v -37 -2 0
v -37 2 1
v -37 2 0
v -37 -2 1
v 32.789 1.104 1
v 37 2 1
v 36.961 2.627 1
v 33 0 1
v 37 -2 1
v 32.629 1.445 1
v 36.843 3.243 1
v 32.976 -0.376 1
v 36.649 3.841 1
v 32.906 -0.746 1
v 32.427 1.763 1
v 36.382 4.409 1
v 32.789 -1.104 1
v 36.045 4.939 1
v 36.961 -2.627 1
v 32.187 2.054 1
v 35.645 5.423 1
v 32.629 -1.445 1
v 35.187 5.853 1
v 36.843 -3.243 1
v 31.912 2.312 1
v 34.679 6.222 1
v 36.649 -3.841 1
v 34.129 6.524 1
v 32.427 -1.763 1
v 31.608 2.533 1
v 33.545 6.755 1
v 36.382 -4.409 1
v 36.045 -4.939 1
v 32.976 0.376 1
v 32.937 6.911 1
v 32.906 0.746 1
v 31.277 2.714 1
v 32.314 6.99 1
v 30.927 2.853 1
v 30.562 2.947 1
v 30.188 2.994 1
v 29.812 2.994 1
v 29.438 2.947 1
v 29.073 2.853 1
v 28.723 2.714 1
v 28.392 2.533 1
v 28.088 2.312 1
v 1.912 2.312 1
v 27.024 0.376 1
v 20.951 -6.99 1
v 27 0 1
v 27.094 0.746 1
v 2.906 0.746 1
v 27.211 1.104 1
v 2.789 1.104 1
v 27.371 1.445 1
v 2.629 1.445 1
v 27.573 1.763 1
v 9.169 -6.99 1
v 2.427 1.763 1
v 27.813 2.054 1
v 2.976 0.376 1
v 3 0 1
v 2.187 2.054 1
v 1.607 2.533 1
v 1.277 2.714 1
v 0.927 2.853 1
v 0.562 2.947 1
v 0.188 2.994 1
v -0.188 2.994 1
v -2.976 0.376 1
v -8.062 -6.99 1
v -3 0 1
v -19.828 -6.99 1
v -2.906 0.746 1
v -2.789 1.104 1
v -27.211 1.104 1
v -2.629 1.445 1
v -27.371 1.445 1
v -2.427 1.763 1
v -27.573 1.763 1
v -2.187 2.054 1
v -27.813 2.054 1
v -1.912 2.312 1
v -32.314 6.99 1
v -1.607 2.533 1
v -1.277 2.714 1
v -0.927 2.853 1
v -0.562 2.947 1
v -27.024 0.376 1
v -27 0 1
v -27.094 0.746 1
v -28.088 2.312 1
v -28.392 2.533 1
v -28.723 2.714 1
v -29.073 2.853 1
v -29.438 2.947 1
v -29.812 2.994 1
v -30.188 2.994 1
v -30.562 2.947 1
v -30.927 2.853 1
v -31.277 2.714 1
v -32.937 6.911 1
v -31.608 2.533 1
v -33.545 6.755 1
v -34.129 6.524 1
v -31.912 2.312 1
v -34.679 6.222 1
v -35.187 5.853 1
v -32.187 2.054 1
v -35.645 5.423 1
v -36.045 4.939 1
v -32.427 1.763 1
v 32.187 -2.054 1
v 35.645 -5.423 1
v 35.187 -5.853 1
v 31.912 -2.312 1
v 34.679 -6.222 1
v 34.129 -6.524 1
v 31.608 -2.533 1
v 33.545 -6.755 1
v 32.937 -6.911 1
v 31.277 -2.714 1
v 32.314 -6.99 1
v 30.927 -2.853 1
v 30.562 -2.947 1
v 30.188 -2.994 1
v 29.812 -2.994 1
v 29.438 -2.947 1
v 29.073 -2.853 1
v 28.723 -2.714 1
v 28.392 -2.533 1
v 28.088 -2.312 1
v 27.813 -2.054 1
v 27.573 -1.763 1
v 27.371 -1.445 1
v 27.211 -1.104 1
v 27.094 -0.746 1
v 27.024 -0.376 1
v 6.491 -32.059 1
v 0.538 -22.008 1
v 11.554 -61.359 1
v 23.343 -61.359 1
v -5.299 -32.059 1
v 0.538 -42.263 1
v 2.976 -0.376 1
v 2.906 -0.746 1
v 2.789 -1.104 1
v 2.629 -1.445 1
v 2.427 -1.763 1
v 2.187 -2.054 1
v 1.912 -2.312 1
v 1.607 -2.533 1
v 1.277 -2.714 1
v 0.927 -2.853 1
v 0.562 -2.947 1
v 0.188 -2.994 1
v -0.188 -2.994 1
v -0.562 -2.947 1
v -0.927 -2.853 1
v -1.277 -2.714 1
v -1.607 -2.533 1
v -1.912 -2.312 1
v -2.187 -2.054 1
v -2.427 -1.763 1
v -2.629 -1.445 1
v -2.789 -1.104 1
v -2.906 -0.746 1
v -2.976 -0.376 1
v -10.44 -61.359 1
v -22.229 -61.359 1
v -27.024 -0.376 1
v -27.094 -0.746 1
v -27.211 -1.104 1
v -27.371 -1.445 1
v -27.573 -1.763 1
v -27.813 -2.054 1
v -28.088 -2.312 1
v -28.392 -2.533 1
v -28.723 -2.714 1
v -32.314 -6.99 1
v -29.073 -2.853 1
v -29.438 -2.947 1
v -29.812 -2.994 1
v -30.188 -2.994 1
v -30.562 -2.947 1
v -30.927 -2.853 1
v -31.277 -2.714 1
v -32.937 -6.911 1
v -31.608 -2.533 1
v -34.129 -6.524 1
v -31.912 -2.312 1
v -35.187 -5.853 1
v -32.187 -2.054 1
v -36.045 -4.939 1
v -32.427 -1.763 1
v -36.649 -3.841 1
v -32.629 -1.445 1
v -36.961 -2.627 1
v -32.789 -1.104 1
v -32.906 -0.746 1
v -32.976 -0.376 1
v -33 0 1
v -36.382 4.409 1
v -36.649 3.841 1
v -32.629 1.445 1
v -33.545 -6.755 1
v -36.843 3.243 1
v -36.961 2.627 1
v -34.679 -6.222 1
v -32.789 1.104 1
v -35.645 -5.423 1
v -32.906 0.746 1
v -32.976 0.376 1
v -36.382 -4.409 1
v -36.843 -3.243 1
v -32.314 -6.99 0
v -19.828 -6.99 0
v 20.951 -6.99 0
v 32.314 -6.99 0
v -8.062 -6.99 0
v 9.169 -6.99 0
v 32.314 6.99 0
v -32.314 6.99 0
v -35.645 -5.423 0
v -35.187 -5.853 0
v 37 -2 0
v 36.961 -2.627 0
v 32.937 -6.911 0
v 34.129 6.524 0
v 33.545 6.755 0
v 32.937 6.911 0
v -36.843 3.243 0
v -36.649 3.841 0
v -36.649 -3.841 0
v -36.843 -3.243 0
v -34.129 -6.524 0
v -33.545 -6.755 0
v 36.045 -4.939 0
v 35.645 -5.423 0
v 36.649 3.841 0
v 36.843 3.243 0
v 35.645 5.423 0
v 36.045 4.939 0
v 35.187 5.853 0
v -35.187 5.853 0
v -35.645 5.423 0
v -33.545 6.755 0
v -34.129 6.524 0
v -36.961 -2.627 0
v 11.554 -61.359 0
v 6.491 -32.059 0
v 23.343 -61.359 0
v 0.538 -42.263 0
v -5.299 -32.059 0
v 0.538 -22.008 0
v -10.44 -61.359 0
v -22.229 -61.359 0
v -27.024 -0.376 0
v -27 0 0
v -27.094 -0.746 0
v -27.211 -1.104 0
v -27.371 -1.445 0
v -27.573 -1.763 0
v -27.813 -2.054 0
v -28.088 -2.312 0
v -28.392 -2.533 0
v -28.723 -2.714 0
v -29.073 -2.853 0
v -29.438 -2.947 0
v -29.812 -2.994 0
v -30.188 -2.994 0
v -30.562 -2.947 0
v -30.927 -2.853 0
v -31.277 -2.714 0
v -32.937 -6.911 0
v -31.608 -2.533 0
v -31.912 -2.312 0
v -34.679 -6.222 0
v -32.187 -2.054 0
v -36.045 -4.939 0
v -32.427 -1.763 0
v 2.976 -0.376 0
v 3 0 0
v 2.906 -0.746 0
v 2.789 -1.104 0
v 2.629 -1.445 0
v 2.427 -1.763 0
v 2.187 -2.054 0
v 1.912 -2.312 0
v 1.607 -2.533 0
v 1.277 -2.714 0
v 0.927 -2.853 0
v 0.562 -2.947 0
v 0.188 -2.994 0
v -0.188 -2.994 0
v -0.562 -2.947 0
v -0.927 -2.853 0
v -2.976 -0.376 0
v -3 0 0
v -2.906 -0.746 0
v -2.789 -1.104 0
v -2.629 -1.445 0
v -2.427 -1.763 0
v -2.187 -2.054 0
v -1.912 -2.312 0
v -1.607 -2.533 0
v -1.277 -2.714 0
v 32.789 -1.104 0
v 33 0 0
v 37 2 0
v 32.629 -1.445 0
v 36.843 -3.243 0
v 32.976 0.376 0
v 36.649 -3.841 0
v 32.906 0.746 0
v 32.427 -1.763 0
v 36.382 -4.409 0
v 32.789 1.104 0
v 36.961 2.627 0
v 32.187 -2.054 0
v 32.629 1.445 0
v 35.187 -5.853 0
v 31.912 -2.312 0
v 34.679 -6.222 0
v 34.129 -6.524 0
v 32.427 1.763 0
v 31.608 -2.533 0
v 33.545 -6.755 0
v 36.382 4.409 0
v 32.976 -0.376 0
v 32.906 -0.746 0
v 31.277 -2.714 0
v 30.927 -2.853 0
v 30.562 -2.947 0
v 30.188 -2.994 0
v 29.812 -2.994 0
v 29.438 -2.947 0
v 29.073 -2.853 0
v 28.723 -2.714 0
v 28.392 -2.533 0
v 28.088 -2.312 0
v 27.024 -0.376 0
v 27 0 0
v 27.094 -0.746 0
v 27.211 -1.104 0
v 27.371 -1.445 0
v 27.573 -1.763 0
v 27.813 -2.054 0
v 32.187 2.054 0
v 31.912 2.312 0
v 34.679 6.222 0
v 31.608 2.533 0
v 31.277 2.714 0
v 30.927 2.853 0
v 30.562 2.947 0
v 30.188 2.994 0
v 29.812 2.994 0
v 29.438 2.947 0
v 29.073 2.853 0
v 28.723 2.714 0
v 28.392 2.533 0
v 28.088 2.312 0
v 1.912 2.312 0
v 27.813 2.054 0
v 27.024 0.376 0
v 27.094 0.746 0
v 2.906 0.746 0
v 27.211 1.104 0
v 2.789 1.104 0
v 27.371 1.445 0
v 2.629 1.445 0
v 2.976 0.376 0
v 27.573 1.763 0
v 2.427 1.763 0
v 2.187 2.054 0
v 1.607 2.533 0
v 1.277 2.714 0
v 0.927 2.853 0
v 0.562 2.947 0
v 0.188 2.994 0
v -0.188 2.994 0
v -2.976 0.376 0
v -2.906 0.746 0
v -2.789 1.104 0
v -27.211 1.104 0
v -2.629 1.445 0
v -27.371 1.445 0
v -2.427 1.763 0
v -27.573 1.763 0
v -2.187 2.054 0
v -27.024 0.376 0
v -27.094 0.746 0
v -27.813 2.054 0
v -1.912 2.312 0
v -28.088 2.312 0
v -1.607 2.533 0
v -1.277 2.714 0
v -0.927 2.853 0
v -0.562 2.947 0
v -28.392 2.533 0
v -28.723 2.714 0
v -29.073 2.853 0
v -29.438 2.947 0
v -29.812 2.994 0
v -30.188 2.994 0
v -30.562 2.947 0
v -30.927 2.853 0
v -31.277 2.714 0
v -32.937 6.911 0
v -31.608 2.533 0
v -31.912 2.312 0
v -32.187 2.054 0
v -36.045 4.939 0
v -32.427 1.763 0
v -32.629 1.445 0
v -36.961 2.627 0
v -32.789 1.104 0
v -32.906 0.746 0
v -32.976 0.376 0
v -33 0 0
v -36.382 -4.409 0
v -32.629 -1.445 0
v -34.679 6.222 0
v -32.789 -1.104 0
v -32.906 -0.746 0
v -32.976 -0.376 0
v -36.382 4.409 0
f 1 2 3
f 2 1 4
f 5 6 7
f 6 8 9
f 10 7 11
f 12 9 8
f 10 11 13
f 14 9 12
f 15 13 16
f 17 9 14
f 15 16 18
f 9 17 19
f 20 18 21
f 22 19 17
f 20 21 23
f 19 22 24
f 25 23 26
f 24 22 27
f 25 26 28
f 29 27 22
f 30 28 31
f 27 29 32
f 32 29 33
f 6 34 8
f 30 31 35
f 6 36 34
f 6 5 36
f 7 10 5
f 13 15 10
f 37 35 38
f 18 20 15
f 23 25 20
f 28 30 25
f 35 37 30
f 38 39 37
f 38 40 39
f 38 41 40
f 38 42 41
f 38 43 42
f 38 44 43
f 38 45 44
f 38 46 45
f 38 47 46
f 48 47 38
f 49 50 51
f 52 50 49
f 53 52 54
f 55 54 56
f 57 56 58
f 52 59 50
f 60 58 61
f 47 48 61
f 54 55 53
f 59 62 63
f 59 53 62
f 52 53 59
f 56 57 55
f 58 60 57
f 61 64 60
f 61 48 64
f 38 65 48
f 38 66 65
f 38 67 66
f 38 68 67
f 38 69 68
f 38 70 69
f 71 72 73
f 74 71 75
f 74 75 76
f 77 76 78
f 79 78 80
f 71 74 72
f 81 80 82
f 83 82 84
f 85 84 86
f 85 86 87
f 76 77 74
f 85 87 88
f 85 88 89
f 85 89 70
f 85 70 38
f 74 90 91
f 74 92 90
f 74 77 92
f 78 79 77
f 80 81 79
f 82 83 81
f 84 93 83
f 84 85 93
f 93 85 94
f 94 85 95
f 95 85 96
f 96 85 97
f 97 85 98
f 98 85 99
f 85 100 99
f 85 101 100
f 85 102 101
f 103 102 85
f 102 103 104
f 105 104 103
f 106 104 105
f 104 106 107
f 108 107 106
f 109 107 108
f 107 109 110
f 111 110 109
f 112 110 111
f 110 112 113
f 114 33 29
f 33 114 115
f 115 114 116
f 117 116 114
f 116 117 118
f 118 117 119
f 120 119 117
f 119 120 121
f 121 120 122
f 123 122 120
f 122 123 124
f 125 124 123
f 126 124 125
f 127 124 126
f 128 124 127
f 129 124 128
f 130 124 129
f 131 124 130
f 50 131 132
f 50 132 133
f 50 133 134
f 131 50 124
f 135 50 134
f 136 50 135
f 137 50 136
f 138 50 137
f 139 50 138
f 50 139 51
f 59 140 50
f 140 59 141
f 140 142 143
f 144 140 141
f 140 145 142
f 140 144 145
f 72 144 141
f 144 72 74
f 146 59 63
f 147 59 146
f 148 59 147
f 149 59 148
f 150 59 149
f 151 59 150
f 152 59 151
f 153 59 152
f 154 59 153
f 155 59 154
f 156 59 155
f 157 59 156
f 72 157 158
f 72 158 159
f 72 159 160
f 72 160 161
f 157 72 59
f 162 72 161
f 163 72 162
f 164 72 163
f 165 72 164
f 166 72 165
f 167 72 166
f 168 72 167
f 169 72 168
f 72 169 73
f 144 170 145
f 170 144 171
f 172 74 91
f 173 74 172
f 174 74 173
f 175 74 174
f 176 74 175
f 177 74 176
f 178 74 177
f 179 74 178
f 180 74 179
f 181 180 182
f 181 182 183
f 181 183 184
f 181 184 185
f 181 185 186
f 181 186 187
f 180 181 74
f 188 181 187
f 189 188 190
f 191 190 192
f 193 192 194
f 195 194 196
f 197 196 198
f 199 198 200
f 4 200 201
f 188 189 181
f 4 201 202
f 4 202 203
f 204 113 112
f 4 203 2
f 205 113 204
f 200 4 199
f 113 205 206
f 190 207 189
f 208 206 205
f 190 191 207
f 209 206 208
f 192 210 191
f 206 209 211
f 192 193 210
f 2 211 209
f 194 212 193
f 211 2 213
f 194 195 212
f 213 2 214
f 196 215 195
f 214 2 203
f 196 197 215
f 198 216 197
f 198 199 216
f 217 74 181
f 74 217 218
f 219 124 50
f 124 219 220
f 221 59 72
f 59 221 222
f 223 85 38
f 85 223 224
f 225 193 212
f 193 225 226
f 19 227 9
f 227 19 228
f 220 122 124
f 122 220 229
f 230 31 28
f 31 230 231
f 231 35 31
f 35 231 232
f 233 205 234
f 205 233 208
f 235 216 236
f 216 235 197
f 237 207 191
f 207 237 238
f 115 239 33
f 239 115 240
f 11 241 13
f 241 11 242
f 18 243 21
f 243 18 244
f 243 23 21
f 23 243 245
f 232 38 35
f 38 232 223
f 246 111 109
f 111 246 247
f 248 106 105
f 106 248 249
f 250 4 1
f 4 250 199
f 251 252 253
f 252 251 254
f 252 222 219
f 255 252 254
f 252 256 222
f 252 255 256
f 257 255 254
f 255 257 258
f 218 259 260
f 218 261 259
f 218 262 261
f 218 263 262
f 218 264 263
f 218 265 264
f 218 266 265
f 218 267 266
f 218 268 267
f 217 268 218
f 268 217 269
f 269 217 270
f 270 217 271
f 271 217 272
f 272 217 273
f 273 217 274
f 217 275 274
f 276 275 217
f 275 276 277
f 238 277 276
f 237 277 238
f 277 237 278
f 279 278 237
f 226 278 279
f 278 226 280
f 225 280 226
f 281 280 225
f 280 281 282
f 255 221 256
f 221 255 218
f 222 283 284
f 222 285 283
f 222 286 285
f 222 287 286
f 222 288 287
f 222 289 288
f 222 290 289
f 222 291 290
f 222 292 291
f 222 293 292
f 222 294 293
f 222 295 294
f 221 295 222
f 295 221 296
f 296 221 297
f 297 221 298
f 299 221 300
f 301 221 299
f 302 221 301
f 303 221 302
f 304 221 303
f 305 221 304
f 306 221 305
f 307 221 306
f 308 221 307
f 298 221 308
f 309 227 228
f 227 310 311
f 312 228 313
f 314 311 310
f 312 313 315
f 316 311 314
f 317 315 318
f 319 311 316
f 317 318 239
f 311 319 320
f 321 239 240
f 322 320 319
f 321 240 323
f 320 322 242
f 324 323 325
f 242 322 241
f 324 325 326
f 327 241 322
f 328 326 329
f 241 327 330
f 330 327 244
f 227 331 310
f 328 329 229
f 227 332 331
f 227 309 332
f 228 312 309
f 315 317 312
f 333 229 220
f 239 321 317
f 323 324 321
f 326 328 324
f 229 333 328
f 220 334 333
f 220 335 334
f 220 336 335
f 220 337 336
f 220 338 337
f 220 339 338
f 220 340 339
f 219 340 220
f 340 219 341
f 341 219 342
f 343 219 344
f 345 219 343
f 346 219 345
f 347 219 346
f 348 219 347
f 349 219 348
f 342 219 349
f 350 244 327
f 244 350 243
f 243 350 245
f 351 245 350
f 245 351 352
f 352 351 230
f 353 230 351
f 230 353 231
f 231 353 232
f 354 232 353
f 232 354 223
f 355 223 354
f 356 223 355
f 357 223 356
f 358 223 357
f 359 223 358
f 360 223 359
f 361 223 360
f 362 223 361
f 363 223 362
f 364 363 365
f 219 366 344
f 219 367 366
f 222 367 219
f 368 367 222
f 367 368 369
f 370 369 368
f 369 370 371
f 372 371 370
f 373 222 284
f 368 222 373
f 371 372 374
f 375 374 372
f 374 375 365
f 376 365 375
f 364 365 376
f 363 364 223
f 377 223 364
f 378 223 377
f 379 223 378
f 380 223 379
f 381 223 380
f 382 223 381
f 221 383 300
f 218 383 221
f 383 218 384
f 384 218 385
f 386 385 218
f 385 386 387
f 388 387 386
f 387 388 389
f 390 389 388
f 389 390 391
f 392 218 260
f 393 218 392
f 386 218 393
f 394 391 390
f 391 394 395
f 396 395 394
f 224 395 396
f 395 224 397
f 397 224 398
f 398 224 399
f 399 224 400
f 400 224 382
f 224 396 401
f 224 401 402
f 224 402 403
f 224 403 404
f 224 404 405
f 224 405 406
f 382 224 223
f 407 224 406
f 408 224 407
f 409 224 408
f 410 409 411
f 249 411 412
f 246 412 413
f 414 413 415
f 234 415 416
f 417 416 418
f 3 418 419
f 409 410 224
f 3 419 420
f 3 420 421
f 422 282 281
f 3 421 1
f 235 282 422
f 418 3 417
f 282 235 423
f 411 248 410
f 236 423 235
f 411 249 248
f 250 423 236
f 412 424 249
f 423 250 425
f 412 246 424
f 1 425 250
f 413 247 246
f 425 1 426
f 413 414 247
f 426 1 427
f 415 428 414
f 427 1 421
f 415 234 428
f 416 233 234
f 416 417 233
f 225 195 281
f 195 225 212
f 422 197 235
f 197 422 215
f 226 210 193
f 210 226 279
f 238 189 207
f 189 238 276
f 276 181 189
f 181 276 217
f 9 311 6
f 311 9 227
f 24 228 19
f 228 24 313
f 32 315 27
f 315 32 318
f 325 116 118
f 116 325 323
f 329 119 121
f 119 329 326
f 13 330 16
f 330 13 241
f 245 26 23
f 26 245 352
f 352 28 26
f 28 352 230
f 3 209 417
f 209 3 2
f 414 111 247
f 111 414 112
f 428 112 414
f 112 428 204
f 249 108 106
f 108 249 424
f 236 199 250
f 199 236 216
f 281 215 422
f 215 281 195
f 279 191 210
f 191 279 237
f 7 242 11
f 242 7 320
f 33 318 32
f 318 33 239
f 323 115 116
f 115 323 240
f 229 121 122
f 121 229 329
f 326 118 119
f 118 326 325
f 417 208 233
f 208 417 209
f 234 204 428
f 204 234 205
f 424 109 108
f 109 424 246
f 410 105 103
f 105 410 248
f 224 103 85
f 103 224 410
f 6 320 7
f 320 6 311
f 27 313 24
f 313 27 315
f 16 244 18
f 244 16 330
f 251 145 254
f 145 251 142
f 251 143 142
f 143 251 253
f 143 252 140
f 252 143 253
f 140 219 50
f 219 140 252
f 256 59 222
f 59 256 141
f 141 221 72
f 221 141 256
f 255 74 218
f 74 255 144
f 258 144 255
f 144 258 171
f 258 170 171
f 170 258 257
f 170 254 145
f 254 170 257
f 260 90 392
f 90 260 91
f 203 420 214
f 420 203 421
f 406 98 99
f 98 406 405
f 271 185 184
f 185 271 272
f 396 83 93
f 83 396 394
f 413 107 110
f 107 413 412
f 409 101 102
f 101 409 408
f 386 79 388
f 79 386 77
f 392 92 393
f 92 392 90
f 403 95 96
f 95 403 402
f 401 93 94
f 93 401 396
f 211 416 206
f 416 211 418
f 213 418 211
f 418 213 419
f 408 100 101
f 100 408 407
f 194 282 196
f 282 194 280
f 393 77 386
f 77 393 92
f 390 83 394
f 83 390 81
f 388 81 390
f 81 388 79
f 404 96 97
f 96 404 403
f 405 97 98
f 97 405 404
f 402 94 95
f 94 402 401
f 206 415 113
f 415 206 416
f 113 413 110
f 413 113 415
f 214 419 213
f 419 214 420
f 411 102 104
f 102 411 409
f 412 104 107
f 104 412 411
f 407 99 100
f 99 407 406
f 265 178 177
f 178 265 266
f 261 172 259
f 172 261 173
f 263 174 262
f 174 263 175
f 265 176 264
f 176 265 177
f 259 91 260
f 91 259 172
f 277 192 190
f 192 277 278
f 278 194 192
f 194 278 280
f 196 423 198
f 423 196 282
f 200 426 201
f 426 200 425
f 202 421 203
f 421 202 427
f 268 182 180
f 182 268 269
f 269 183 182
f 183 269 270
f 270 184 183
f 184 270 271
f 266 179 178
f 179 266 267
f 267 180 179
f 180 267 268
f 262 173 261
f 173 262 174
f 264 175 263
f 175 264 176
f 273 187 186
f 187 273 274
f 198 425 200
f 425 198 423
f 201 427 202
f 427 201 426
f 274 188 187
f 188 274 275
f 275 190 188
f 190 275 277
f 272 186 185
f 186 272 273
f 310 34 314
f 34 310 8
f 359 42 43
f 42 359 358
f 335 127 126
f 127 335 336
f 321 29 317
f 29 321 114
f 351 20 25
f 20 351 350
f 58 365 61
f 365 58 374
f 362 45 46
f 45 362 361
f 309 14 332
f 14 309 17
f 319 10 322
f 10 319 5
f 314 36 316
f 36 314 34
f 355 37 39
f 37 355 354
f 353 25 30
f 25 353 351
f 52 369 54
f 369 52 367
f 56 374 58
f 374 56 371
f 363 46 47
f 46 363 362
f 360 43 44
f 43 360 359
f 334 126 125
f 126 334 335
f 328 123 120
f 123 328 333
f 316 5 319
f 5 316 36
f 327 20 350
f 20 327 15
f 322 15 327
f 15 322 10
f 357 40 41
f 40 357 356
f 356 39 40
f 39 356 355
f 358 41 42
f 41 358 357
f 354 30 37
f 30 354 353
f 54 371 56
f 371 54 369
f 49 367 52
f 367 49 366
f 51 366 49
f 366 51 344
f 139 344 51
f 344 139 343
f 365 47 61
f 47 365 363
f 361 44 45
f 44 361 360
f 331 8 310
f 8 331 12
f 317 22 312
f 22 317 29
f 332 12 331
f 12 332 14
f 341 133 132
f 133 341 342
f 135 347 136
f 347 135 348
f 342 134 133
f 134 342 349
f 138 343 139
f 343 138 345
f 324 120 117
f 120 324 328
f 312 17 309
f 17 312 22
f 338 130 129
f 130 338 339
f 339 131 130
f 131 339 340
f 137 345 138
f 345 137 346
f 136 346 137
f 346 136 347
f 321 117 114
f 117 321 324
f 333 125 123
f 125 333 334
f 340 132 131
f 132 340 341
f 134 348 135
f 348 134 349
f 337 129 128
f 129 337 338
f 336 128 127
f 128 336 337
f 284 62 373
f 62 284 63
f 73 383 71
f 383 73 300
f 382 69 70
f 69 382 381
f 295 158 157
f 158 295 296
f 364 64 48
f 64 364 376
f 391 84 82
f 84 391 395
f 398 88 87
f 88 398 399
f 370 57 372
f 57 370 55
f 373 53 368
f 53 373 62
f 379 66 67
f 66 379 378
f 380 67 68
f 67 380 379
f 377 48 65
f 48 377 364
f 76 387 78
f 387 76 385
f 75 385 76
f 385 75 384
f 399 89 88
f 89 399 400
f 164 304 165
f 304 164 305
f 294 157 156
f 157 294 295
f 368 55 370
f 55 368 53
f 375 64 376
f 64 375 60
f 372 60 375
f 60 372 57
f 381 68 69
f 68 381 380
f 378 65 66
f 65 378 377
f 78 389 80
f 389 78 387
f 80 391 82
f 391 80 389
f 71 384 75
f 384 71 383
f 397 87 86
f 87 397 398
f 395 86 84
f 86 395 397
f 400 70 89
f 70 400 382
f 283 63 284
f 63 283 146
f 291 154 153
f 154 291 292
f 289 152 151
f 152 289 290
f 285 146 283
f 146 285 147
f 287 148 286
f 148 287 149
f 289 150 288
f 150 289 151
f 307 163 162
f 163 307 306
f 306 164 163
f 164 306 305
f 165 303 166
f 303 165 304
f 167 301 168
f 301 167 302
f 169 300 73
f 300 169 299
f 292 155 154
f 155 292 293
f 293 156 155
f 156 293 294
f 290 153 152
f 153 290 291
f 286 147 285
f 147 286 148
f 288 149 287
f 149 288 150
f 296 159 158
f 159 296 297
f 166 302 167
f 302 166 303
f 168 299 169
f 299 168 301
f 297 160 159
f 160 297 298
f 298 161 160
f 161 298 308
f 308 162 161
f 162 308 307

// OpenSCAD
$fn = 50;


difference() {
	union() {
		translate(v = [0, 0, 0]) {
			rotate(a = [0, 0, 0]) {
				hull() {
					translate(v = [-32.0000000000, 2.0000000000, 0]) {
						rotate(a = [0, 0, 0]) {
							translate(v = [0, 0, 0]) {
								rotate(a = [0, 0, 0]) {
									cylinder(h = 1, r = 5);
								}
							}
						}
					}
					translate(v = [32.0000000000, 2.0000000000, 0]) {
						rotate(a = [0, 0, 0]) {
							translate(v = [0, 0, 0]) {
								rotate(a = [0, 0, 0]) {
									cylinder(h = 1, r = 5);
								}
							}
						}
					}
					translate(v = [-32.0000000000, -2.0000000000, 0]) {
						rotate(a = [0, 0, 0]) {
							translate(v = [0, 0, 0]) {
								rotate(a = [0, 0, 0]) {
									cylinder(h = 1, r = 5);
								}
							}
						}
					}
					translate(v = [32.0000000000, -2.0000000000, 0]) {
						rotate(a = [0, 0, 0]) {
							translate(v = [0, 0, 0]) {
								rotate(a = [0, 0, 0]) {
									cylinder(h = 1, r = 5);
								}
							}
						}
					}
				}
			}
		}
		translate(v = [0, -5, 0]) {
			rotate(a = [0, 0, 0]) {
				linear_extrude(height = 1) {
					text(font = "DejaVu Sans Mono:style=Bold", halign = "center", size = 57.0000000000, text = "X", valign = "top");
				}
			}
		}
	}
	union() {
		translate(v = [-30.0000000000, 0.0000000000, -125.0000000000]) {
			rotate(a = [0, 0, 0]) {
				cylinder(h = 250, r = 3.0000000000);
			}
		}
		translate(v = [30.0000000000, 0.0000000000, -125.0000000000]) {
			rotate(a = [0, 0, 0]) {
				cylinder(h = 250, r = 3.0000000000);
			}
		}
		translate(v = [30.0000000000, 0.0000000000, -125.0000000000]) {
			rotate(a = [0, 0, 0]) {
				cylinder(h = 250, r = 3.0000000000);
			}
		}
		translate(v = [0, 0, -125.0000000000]) {
			rotate(a = [0, 0, 0]) {
				cylinder(h = 250, r = 3.0000000000);
			}
		}
	}
}
